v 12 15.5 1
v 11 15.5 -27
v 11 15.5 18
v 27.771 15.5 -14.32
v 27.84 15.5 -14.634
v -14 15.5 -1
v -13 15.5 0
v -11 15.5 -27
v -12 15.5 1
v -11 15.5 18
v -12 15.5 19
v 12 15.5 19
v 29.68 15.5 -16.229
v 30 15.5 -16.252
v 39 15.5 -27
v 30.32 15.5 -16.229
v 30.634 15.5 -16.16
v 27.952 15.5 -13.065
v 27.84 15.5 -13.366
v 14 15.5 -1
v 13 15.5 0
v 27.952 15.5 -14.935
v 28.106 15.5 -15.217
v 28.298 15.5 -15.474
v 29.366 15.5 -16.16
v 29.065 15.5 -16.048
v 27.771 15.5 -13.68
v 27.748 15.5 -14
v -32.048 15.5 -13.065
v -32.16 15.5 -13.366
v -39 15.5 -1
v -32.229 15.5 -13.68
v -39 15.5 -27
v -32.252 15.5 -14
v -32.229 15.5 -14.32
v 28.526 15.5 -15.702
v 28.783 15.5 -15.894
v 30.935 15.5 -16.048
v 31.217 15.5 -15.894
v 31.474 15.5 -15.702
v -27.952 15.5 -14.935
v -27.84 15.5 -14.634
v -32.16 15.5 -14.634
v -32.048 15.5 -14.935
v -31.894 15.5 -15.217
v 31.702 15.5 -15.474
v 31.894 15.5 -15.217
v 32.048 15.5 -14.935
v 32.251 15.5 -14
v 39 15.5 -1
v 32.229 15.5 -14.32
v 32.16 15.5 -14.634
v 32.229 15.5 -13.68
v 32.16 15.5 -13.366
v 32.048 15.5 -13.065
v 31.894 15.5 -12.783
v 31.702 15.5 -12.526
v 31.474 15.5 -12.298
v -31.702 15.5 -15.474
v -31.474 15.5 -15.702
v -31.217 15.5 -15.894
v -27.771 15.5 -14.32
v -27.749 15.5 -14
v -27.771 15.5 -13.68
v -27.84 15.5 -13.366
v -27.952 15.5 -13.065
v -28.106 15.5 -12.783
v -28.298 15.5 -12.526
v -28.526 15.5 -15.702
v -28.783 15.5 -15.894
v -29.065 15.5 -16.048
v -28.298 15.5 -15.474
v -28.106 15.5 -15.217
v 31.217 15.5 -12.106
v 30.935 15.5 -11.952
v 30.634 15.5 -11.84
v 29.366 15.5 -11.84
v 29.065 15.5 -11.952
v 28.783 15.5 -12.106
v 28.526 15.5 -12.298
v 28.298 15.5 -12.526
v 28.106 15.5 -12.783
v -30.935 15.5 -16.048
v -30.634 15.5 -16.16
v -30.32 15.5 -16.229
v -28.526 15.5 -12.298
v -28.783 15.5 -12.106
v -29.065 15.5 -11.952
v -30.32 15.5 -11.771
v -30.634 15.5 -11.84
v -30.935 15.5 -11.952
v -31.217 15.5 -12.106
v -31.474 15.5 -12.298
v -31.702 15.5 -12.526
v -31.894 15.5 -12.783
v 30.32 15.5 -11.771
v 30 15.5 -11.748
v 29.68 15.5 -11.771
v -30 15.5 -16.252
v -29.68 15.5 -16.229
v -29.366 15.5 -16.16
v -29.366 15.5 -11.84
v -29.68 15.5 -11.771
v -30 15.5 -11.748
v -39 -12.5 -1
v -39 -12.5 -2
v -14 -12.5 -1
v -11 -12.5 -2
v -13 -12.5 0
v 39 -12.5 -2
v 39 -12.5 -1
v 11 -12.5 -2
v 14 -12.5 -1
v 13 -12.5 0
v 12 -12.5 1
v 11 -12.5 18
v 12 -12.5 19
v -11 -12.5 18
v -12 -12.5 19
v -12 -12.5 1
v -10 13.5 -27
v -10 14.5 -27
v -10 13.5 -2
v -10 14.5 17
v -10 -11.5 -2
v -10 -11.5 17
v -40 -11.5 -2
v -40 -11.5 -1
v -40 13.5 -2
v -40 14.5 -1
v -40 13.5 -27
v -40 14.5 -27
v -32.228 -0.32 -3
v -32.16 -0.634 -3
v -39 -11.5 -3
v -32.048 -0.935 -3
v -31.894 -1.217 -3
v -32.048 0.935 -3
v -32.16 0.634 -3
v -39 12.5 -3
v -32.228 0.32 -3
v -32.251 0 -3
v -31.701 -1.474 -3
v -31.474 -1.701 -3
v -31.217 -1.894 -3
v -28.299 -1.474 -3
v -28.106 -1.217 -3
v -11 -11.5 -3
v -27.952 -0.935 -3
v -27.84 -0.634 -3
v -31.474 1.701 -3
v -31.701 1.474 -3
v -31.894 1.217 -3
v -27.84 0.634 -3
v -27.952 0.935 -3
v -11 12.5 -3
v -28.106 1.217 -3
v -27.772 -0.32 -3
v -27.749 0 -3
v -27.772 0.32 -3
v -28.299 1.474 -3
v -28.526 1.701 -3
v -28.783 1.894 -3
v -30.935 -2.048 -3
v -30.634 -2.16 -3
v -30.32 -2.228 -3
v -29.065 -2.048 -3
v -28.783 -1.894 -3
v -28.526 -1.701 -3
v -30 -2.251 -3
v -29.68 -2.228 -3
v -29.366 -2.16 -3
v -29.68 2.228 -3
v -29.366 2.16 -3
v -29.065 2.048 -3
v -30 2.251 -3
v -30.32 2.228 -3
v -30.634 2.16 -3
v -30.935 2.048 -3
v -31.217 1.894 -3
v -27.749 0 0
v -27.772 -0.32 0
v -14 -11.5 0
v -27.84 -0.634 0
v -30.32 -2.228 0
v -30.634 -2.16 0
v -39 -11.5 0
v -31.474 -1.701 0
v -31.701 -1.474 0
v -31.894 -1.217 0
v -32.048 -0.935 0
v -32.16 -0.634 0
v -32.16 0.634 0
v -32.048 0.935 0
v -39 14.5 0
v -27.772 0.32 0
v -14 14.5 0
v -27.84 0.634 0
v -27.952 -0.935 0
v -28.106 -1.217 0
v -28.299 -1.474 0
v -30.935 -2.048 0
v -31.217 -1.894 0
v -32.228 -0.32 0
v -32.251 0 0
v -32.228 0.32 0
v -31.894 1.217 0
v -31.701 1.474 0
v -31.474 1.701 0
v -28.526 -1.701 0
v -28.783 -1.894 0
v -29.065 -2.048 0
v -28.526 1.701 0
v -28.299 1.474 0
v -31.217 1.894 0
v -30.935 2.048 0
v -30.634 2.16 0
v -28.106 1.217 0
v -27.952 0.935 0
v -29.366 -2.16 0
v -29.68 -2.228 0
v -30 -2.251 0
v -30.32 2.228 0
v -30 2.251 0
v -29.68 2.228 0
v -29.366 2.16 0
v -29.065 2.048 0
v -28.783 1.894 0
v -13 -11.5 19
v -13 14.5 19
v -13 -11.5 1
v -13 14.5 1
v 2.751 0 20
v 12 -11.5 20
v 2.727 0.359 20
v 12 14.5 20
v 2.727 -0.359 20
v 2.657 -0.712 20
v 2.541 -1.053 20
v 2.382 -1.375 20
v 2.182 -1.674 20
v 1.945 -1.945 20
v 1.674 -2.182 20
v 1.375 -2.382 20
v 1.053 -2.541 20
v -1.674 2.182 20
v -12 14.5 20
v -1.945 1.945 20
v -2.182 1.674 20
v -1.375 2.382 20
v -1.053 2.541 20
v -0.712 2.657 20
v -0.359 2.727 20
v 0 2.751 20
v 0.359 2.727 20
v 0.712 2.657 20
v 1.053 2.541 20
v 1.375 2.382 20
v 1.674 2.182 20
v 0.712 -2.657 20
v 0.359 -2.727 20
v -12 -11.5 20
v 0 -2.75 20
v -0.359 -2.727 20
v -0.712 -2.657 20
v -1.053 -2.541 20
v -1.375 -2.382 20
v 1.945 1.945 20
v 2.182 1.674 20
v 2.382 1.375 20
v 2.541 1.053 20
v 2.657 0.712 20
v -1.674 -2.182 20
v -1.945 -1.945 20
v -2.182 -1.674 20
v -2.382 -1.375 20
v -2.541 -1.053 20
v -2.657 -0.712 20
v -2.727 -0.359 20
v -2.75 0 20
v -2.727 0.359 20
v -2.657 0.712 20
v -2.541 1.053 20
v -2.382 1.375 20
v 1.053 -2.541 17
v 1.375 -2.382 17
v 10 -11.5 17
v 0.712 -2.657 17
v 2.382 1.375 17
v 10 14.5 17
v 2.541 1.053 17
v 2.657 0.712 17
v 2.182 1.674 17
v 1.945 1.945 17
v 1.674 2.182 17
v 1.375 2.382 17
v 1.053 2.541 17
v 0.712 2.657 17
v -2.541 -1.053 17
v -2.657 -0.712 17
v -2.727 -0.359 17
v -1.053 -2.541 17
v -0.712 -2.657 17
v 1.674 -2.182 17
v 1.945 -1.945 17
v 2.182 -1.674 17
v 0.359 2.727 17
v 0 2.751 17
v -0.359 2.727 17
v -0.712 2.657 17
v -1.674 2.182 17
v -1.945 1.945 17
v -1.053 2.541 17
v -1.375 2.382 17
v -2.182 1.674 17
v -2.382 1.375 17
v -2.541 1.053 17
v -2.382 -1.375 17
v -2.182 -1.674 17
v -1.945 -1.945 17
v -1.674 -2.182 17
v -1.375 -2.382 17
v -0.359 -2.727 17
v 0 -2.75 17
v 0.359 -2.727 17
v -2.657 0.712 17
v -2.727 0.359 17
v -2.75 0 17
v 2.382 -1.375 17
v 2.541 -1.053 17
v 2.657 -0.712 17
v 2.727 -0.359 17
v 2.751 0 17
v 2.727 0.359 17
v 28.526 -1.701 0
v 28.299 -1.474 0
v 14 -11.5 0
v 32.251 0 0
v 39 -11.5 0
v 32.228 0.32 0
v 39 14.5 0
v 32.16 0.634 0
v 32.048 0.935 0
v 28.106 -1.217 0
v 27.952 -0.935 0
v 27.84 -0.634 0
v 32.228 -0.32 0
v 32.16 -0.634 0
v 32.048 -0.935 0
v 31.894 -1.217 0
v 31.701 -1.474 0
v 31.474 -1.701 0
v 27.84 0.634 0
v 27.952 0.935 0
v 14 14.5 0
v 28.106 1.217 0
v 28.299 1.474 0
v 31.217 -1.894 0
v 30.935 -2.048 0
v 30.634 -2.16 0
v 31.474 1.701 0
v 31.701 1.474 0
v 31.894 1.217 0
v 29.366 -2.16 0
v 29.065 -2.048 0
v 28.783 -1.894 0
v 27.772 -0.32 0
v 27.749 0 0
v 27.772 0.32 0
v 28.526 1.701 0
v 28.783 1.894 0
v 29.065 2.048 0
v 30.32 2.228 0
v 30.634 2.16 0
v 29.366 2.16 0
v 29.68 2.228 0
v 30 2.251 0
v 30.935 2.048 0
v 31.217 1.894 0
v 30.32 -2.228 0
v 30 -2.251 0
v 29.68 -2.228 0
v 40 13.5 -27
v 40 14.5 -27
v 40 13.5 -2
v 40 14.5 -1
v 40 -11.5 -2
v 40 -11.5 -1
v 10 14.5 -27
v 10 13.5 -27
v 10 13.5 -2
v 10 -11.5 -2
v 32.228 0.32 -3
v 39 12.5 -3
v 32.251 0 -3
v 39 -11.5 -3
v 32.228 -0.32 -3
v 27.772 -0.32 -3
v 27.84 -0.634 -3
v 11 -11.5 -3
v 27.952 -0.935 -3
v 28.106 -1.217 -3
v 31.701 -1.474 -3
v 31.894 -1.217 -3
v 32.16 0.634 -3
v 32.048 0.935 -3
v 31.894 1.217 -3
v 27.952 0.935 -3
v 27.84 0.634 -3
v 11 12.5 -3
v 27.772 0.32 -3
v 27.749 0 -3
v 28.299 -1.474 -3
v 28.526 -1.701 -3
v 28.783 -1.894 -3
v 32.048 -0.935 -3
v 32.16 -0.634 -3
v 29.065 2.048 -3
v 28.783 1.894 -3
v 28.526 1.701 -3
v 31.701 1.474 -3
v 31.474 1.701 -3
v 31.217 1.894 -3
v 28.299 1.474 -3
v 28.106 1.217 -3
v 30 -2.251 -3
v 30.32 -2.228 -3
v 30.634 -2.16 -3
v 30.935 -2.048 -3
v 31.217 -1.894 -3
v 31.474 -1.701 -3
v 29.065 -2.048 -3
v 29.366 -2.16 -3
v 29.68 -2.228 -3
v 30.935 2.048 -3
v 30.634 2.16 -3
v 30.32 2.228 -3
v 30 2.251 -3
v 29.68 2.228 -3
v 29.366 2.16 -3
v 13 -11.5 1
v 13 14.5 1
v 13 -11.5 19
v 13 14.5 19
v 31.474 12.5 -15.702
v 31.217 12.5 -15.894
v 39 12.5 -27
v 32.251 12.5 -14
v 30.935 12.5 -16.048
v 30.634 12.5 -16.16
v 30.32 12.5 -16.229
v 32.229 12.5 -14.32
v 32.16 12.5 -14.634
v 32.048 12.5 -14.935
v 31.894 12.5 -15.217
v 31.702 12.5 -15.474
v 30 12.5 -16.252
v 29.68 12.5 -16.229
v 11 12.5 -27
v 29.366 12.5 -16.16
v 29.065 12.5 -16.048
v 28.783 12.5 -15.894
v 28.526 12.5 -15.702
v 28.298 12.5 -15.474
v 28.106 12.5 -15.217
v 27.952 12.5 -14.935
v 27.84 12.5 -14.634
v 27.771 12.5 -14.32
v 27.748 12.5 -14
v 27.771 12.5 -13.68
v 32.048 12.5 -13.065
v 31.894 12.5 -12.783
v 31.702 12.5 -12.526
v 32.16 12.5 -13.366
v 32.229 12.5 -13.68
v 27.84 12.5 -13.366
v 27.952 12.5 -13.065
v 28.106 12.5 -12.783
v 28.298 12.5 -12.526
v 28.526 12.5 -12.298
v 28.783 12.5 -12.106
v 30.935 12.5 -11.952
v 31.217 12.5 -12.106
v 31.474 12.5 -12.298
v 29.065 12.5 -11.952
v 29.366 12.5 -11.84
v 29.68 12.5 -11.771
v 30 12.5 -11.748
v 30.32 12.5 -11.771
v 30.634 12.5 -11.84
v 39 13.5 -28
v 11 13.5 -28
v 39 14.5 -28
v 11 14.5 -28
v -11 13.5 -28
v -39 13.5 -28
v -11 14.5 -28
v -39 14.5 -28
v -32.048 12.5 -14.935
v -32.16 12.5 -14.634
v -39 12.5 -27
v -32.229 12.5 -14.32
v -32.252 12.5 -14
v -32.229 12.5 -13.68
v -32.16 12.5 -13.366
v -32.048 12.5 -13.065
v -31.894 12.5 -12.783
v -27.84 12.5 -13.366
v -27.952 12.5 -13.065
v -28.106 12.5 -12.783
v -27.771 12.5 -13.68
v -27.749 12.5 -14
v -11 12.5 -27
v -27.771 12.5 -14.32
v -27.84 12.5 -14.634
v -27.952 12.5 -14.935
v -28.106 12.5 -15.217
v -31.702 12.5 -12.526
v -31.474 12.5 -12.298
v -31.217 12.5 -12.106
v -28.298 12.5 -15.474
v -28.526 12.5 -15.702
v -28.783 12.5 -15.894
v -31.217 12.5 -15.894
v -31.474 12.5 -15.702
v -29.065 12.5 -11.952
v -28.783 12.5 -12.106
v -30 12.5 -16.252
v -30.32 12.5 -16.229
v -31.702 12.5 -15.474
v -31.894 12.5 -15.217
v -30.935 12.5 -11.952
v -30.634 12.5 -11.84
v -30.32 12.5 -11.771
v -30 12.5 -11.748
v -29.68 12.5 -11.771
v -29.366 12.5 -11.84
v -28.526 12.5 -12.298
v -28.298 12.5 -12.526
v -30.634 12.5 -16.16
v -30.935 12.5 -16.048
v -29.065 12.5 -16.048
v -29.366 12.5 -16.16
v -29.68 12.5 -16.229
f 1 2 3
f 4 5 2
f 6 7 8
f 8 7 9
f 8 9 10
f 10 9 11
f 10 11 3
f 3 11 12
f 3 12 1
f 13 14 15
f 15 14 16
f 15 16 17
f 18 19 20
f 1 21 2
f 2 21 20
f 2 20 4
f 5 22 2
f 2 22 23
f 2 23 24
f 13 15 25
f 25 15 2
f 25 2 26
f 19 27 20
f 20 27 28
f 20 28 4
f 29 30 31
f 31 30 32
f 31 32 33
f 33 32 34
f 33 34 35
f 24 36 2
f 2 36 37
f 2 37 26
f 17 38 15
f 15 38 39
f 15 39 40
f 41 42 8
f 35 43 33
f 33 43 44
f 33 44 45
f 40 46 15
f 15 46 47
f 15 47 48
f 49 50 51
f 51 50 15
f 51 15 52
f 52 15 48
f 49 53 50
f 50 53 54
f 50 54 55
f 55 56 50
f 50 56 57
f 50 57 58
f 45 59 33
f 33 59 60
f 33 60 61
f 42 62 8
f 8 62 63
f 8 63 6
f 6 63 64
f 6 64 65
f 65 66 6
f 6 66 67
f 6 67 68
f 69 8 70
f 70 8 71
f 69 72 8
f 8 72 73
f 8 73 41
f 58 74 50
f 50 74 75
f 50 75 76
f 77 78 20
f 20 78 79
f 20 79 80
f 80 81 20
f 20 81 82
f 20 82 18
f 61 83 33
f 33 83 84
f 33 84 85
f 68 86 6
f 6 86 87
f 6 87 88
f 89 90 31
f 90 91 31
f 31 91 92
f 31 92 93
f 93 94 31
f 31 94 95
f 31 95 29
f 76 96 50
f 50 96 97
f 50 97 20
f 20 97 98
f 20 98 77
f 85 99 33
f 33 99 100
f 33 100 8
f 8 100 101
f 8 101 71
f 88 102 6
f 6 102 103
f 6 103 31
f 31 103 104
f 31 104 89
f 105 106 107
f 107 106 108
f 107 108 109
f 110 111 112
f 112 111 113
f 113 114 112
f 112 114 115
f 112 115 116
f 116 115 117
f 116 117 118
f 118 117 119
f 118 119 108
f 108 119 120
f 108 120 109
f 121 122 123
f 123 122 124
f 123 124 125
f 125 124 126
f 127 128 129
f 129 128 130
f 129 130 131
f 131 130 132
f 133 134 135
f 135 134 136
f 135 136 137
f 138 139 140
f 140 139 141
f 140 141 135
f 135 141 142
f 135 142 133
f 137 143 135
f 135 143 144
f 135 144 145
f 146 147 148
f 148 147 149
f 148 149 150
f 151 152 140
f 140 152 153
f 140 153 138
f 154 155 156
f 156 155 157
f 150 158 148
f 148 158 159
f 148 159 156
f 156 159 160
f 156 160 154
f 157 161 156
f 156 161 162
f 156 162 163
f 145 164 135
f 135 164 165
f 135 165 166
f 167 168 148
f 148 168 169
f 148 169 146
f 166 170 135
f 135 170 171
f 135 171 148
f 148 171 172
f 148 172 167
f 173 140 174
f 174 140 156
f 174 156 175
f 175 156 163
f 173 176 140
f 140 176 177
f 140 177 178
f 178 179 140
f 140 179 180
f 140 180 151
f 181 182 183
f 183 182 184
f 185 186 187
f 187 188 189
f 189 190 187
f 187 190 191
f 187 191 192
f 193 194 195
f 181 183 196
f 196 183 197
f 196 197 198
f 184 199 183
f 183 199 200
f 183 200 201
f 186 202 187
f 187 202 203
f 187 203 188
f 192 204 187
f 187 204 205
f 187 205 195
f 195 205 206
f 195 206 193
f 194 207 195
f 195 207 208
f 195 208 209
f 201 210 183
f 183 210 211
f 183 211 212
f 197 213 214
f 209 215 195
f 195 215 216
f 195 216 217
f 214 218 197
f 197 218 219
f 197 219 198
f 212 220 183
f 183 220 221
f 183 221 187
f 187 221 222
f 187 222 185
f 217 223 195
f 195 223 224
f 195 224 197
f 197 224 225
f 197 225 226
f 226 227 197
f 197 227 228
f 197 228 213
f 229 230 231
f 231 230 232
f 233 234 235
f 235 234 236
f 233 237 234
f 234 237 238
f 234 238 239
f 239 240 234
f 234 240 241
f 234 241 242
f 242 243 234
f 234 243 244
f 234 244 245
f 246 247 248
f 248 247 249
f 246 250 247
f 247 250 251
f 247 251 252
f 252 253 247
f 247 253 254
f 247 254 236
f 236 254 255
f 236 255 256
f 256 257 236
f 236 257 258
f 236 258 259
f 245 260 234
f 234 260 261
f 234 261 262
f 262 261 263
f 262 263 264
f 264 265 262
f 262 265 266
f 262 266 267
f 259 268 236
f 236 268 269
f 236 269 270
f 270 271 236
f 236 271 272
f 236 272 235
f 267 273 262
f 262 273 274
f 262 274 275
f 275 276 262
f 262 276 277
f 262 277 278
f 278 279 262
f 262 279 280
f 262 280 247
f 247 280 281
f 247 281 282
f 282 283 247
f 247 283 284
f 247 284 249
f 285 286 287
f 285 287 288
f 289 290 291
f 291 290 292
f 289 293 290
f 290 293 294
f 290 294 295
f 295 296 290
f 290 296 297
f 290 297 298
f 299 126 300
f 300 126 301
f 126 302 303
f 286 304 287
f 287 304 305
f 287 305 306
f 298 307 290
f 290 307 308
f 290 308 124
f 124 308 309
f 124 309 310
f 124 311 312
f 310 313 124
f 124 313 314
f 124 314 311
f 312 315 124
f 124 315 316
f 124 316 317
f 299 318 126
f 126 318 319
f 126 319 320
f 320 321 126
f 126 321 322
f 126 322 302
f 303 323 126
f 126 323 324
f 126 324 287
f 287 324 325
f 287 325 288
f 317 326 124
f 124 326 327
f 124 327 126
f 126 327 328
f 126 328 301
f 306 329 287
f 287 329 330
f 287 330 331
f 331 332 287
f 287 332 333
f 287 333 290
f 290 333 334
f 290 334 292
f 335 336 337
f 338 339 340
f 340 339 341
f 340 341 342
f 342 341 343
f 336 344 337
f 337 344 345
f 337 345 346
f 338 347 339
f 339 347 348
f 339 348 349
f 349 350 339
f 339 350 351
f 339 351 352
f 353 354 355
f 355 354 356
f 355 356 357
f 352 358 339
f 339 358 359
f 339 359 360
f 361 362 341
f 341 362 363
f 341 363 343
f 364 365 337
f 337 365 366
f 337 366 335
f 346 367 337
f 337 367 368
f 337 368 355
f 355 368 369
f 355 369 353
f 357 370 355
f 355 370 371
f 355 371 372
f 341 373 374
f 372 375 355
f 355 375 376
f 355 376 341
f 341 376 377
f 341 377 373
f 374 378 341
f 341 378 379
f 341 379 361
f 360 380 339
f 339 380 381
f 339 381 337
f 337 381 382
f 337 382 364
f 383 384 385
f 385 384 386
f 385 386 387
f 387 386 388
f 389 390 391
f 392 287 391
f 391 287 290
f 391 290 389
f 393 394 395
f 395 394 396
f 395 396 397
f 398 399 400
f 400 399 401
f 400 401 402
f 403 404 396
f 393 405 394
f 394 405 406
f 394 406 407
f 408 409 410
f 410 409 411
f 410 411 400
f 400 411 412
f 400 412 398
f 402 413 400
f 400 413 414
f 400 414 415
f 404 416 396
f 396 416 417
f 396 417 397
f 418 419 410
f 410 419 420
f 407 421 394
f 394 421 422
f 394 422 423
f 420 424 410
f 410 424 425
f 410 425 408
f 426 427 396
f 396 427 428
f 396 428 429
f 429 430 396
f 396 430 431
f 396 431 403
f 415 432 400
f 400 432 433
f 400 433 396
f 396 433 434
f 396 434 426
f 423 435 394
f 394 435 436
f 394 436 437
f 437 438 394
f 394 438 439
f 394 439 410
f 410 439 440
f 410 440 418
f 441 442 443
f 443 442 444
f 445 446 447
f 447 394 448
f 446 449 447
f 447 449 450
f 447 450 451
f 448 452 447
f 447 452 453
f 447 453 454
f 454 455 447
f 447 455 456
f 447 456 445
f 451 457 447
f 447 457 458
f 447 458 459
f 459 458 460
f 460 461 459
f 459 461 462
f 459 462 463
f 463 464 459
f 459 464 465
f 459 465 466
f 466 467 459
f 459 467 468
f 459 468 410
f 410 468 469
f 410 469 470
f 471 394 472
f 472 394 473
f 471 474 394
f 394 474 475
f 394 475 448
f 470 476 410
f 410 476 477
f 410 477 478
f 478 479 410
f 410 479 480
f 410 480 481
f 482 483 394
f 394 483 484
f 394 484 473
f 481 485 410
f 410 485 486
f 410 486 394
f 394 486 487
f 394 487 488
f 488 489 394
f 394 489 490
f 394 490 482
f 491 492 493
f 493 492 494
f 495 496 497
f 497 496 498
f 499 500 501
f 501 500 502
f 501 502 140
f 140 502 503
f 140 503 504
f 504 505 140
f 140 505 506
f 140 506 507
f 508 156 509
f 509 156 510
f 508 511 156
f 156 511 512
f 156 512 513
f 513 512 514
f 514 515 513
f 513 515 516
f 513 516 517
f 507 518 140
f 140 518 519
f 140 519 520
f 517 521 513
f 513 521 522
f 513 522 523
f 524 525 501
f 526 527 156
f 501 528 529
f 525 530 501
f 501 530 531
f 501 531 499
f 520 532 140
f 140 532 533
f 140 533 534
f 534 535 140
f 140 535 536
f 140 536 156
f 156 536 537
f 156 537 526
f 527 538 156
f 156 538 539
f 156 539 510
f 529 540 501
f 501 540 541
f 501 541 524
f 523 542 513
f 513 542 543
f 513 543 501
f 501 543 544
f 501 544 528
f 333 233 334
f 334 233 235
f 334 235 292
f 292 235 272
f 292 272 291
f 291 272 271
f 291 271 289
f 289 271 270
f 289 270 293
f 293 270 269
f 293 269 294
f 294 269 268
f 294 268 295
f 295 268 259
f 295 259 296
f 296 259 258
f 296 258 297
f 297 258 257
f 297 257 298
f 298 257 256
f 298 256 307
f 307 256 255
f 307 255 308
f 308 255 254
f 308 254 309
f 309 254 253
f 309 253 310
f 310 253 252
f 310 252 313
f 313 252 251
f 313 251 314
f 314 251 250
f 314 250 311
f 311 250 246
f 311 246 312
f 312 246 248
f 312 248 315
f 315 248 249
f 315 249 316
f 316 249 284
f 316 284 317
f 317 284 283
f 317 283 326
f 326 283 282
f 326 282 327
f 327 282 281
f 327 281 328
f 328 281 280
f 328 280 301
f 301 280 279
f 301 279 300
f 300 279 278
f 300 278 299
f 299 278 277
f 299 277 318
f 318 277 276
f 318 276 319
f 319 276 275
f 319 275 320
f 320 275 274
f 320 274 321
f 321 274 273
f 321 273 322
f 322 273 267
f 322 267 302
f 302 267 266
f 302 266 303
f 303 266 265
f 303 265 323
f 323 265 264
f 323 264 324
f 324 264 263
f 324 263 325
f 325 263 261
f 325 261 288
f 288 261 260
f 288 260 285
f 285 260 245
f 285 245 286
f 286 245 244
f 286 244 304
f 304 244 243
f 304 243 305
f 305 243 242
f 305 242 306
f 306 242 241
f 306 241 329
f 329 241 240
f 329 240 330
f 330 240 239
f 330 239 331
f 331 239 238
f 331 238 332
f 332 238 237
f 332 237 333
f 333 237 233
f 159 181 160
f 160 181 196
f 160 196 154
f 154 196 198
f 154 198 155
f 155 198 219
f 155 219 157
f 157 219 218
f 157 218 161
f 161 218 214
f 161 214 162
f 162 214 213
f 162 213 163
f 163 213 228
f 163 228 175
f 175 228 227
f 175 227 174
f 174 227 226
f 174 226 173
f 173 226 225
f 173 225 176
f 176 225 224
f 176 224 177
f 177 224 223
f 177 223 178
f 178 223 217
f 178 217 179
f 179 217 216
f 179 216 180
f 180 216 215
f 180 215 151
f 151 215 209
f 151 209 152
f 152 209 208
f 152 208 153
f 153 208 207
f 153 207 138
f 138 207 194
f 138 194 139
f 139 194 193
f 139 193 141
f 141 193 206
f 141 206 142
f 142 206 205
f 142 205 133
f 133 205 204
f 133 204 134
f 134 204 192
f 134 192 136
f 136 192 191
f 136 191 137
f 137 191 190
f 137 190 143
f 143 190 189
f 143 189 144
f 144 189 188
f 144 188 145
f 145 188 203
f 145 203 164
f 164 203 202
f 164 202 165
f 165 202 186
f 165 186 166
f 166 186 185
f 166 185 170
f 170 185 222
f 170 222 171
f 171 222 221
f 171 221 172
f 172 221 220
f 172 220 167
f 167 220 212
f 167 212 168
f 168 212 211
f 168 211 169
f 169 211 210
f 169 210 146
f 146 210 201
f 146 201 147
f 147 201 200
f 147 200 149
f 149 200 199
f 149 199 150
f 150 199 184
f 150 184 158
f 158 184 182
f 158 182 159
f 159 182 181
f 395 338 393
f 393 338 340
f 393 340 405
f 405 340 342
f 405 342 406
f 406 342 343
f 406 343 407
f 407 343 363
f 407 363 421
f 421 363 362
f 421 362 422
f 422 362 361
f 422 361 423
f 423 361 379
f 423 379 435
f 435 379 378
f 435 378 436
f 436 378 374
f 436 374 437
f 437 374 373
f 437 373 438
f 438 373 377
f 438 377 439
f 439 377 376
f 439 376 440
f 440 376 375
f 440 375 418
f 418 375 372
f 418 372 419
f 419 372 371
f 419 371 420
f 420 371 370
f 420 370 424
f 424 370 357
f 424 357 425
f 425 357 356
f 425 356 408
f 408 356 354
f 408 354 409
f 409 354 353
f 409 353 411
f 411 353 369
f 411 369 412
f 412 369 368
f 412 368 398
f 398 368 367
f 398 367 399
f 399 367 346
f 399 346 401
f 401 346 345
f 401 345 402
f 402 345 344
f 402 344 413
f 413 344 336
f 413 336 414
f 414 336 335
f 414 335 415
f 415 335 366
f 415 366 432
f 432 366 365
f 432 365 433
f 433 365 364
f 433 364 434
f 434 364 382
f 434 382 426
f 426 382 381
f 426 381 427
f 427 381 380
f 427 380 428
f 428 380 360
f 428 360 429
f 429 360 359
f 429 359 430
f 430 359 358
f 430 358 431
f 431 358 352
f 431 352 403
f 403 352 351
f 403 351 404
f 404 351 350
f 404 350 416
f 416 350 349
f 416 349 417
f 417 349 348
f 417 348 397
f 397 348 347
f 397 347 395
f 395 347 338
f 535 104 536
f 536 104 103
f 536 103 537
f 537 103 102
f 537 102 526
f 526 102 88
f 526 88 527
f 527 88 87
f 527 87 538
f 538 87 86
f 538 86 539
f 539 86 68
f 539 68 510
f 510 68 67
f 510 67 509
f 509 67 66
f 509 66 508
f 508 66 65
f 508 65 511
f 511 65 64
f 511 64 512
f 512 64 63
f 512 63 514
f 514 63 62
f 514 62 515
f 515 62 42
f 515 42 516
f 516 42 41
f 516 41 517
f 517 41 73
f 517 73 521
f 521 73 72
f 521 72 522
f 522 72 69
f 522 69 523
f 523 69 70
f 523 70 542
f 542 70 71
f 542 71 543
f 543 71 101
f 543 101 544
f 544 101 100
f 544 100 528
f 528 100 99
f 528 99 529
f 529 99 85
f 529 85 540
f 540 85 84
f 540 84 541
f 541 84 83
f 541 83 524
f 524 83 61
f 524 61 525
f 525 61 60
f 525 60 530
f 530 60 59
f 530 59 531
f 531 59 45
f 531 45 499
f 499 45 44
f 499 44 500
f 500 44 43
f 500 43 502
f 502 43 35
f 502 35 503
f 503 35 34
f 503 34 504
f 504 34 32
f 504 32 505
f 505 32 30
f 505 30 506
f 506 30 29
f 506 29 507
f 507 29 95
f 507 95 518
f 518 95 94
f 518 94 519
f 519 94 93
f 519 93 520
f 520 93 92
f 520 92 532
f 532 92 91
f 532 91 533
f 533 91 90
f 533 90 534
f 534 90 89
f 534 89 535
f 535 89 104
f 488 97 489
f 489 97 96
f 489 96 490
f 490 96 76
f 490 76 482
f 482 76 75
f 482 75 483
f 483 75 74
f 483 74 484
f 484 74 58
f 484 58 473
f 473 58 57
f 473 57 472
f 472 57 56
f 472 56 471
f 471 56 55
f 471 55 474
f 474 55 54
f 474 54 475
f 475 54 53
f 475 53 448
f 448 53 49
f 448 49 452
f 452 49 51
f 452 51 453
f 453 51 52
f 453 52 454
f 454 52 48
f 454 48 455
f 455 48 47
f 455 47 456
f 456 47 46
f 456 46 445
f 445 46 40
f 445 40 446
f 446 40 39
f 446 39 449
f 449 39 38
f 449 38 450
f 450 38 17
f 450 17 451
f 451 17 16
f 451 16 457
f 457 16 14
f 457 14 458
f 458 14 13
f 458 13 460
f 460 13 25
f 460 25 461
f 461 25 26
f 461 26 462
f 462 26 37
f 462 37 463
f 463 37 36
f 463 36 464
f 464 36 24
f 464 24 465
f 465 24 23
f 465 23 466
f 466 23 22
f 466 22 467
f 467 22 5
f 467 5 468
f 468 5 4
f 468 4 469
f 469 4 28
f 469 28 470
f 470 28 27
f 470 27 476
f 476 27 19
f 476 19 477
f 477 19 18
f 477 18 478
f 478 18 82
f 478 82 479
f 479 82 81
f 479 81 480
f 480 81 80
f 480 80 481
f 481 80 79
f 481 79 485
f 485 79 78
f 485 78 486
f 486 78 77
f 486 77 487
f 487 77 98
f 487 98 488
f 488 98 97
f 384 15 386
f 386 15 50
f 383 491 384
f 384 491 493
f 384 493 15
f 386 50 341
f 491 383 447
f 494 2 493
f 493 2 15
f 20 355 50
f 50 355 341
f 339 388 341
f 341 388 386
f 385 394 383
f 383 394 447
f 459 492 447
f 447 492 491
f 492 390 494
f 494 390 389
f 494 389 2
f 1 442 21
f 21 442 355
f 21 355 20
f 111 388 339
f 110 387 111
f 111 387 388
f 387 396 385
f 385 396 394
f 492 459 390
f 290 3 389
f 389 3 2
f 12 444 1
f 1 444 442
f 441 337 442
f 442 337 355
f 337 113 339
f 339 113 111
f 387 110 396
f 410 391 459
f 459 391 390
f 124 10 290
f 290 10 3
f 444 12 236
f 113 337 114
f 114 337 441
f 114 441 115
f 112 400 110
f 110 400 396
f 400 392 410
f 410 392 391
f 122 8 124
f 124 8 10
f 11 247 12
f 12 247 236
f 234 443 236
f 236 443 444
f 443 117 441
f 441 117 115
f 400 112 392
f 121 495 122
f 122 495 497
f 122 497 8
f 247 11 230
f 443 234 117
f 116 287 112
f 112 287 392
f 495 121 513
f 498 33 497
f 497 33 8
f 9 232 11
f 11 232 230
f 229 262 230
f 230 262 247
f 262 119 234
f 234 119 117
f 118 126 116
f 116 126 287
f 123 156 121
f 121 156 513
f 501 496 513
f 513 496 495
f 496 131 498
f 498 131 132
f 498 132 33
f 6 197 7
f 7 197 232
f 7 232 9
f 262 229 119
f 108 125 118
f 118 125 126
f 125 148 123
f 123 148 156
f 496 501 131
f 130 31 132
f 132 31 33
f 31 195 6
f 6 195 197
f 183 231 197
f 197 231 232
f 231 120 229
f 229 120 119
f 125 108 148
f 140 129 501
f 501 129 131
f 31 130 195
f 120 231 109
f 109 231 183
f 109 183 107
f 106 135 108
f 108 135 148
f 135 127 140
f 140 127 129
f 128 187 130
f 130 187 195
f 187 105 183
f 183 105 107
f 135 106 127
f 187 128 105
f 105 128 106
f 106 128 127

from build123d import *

# Parameters (mm, degrees)
SKETCH2_W                      = 27
SKETCH2_H                      = 25
SKETCH2_W_2                    = 3
BOSS_EXTRUDE1_DEPTH            = 3
SKETCH2_3_W                    = 3
SKETCH2_3_H                    = 25
BOSS_EXTRUDE2_DEPTH            = 20
BOSS_EXTRUDE3_START            = 20
SKETCH2_4_W                    = 20
SKETCH2_4_H                    = 25
BOSS_EXTRUDE3_DEPTH            = 3
BOSS_EXTRUDE4_START            = 12.5
SKETCH3_W                      = 27
SKETCH3_H                      = 28
BOSS_EXTRUDE4_DEPTH            = 3
CBORE_FOR_M4_SHCS1_D           = 4.5
CBORE_FOR_M4_SHCS1_DEPTH       = 10
CBORE_FOR_M4_SHCS1_CBORE_D     = 4.502
CBORE_FOR_M4_SHCS1_CBORE_DEPTH = 4
CBORE_FOR_M4_SHCS1_TIP         = 1.351936393
CBORE_FOR_M4_SHCS2_D           = 4.5
CBORE_FOR_M4_SHCS2_DEPTH       = 10
CBORE_FOR_M4_SHCS2_CBORE_D     = 4.503
CBORE_FOR_M4_SHCS2_CBORE_DEPTH = 4
CBORE_FOR_M4_SHCS2_TIP         = 1.351936393
CHAMFER1_SIZE                  = 1


with BuildPart() as part:
    # Sketch2 → Boss-Extrude1 (new body)
    with BuildSketch(Plane.XY):
        with Locations((-26.5, 0)):
            Rectangle(SKETCH2_W, SKETCH2_H)
        with Locations((26.5, 0)):
            Rectangle(SKETCH2_W, SKETCH2_H)
        with Locations((-11.5, 0)):
            Rectangle(SKETCH2_W_2, SKETCH2_H)
        with Locations((11.5, 0)):
            Rectangle(SKETCH2_W_2, SKETCH2_H)
    extrude(amount=-BOSS_EXTRUDE1_DEPTH)

    # Sketch2<3> → Boss-Extrude2 (add)
    with BuildSketch(Plane.XY):
        with Locations((-11.5, 0)):
            Rectangle(SKETCH2_3_W, SKETCH2_3_H)
        with Locations((11.5, 0)):
            Rectangle(SKETCH2_3_W, SKETCH2_3_H)
    extrude(amount=BOSS_EXTRUDE2_DEPTH)

    # Sketch2<4> → Boss-Extrude3 (add)
    with BuildSketch(Plane.XY.offset(BOSS_EXTRUDE3_START)):
        Rectangle(SKETCH2_4_W, SKETCH2_4_H)
    extrude(amount=-BOSS_EXTRUDE3_DEPTH)

    # Sketch3 → Boss-Extrude4 (add)
    with BuildSketch(Plane(origin=(0, 0, 0), x_dir=(1, 0, 0), z_dir=(0, 1, 0)).offset(BOSS_EXTRUDE4_START)):
        with Locations((-26.5, 14)):
            Rectangle(SKETCH3_W, SKETCH3_H)
        Polygon((-13, 28), (-13, 0), (-10, 0), (-10, 3), (-10, 28), align=None)
        Polygon((-10, 0), (-13, 0), (-13, -20), (13, -20), (13, 0), (10, 0), (10, -17), (-10, -17), align=None)
        with Locations((26.5, 14)):
            Rectangle(SKETCH3_W, SKETCH3_H)
        Polygon((10, 0), (13, 0), (13, 28), (10, 28), (10, 3), align=None)
    extrude(amount=BOSS_EXTRUDE4_DEPTH)

    # Sketch6 → CBORE for M5 Hex Head Cap Screw1 (revolve, cut)
    with BuildSketch(Plane(origin=(0, 0, 20), x_dir=(0, -1, 0), z_dir=(1, 0, 0))):
        Polygon((0, 0), (0, 4.652366702), (2.75, 3), (2.75, 3.65), (2.7505, 0), align=None)
    revolve(axis=Axis((0, 0, 26.35), (0, 0, -1)), mode=Mode.SUBTRACT)

    # CBORE for M4 SHCS1
    with Locations(Plane.XY):
        with Locations((30, 0), (-30, 0)):
            CounterBoreHole(CBORE_FOR_M4_SHCS1_D / 2, CBORE_FOR_M4_SHCS1_CBORE_D / 2, CBORE_FOR_M4_SHCS1_CBORE_DEPTH, depth=CBORE_FOR_M4_SHCS1_DEPTH)
            with Locations((0, 0, -(CBORE_FOR_M4_SHCS1_DEPTH + CBORE_FOR_M4_SHCS1_TIP / 2))):  # 118° drill point
                Cone(0, CBORE_FOR_M4_SHCS1_D / 2, CBORE_FOR_M4_SHCS1_TIP, mode=Mode.SUBTRACT)

    # CBORE for M4 SHCS2
    with Locations(Plane(origin=(0, 15.5, 0), x_dir=(1, 0, 0), z_dir=(0, 1, 0))):
        with Locations((30, 14), (-30, 14)):
            CounterBoreHole(CBORE_FOR_M4_SHCS2_D / 2, CBORE_FOR_M4_SHCS2_CBORE_D / 2, CBORE_FOR_M4_SHCS2_CBORE_DEPTH, depth=CBORE_FOR_M4_SHCS2_DEPTH)
            with Locations((0, 0, -(CBORE_FOR_M4_SHCS2_DEPTH + CBORE_FOR_M4_SHCS2_TIP / 2))):  # 118° drill point
                Cone(0, CBORE_FOR_M4_SHCS2_D / 2, CBORE_FOR_M4_SHCS2_TIP, mode=Mode.SUBTRACT)

    # Chamfer1
    chamfer1_edges = [part.edges().sort_by_distance(p)[0] for p in [
        (-10, 0, -3),
        (-26.5, -12.5, 0),
        (-13, 1.5, 0),
        (0, -12.5, 20),
        (-13, -12.5, 10),
        (-13, 1.5, 20),
        (-40, 0, -3),
        (0, -12.5, 17),
        (13, 1.5, 0),
        (40, 1.5, 0),
        (26.5, -12.5, 0),
        (40, -12.5, -1.5),
        (10, -12.5, 7),
        (10, 0, -3),
        (40, 0, -3),
        (25, -12.5, -3),
        (13, 1.5, 20),
        (13, -12.5, 10),
        (-25, -12.5, -3),
        (-13, 15.5, 10),
        (40, 12.5, -15.5),
        (25, 12.5, -28),
        (-40, 1.5, 0),
        (40, 14, -28),
        (10, 12.5, -15.5),
        (10, 14, -28),
        (-10, 15.5, -5.5),
        (-25, 15.5, -28),
        (-10, 14, -28),
        (-40, 15.5, -14),
        (-40, 14, -28),
        (-26.5, 15.5, 0),
        (0, 15.5, 20),
        (13, 15.5, 10),
        (26.5, 15.5, 0),
        (40, 15.5, -14),
        (25, 15.5, -28),
        (10, 15.5, -5.5),
        (0, 15.5, 17),
        (-40, 12.5, -15.5),
        (-25, 12.5, -28),
        (-10, 12.5, -15.5),
        (-40, -12.5, -1.5),
        (-10, -12.5, 7),
    ]]
    chamfer(chamfer1_edges, length=CHAMFER1_SIZE)


solid = part.part
